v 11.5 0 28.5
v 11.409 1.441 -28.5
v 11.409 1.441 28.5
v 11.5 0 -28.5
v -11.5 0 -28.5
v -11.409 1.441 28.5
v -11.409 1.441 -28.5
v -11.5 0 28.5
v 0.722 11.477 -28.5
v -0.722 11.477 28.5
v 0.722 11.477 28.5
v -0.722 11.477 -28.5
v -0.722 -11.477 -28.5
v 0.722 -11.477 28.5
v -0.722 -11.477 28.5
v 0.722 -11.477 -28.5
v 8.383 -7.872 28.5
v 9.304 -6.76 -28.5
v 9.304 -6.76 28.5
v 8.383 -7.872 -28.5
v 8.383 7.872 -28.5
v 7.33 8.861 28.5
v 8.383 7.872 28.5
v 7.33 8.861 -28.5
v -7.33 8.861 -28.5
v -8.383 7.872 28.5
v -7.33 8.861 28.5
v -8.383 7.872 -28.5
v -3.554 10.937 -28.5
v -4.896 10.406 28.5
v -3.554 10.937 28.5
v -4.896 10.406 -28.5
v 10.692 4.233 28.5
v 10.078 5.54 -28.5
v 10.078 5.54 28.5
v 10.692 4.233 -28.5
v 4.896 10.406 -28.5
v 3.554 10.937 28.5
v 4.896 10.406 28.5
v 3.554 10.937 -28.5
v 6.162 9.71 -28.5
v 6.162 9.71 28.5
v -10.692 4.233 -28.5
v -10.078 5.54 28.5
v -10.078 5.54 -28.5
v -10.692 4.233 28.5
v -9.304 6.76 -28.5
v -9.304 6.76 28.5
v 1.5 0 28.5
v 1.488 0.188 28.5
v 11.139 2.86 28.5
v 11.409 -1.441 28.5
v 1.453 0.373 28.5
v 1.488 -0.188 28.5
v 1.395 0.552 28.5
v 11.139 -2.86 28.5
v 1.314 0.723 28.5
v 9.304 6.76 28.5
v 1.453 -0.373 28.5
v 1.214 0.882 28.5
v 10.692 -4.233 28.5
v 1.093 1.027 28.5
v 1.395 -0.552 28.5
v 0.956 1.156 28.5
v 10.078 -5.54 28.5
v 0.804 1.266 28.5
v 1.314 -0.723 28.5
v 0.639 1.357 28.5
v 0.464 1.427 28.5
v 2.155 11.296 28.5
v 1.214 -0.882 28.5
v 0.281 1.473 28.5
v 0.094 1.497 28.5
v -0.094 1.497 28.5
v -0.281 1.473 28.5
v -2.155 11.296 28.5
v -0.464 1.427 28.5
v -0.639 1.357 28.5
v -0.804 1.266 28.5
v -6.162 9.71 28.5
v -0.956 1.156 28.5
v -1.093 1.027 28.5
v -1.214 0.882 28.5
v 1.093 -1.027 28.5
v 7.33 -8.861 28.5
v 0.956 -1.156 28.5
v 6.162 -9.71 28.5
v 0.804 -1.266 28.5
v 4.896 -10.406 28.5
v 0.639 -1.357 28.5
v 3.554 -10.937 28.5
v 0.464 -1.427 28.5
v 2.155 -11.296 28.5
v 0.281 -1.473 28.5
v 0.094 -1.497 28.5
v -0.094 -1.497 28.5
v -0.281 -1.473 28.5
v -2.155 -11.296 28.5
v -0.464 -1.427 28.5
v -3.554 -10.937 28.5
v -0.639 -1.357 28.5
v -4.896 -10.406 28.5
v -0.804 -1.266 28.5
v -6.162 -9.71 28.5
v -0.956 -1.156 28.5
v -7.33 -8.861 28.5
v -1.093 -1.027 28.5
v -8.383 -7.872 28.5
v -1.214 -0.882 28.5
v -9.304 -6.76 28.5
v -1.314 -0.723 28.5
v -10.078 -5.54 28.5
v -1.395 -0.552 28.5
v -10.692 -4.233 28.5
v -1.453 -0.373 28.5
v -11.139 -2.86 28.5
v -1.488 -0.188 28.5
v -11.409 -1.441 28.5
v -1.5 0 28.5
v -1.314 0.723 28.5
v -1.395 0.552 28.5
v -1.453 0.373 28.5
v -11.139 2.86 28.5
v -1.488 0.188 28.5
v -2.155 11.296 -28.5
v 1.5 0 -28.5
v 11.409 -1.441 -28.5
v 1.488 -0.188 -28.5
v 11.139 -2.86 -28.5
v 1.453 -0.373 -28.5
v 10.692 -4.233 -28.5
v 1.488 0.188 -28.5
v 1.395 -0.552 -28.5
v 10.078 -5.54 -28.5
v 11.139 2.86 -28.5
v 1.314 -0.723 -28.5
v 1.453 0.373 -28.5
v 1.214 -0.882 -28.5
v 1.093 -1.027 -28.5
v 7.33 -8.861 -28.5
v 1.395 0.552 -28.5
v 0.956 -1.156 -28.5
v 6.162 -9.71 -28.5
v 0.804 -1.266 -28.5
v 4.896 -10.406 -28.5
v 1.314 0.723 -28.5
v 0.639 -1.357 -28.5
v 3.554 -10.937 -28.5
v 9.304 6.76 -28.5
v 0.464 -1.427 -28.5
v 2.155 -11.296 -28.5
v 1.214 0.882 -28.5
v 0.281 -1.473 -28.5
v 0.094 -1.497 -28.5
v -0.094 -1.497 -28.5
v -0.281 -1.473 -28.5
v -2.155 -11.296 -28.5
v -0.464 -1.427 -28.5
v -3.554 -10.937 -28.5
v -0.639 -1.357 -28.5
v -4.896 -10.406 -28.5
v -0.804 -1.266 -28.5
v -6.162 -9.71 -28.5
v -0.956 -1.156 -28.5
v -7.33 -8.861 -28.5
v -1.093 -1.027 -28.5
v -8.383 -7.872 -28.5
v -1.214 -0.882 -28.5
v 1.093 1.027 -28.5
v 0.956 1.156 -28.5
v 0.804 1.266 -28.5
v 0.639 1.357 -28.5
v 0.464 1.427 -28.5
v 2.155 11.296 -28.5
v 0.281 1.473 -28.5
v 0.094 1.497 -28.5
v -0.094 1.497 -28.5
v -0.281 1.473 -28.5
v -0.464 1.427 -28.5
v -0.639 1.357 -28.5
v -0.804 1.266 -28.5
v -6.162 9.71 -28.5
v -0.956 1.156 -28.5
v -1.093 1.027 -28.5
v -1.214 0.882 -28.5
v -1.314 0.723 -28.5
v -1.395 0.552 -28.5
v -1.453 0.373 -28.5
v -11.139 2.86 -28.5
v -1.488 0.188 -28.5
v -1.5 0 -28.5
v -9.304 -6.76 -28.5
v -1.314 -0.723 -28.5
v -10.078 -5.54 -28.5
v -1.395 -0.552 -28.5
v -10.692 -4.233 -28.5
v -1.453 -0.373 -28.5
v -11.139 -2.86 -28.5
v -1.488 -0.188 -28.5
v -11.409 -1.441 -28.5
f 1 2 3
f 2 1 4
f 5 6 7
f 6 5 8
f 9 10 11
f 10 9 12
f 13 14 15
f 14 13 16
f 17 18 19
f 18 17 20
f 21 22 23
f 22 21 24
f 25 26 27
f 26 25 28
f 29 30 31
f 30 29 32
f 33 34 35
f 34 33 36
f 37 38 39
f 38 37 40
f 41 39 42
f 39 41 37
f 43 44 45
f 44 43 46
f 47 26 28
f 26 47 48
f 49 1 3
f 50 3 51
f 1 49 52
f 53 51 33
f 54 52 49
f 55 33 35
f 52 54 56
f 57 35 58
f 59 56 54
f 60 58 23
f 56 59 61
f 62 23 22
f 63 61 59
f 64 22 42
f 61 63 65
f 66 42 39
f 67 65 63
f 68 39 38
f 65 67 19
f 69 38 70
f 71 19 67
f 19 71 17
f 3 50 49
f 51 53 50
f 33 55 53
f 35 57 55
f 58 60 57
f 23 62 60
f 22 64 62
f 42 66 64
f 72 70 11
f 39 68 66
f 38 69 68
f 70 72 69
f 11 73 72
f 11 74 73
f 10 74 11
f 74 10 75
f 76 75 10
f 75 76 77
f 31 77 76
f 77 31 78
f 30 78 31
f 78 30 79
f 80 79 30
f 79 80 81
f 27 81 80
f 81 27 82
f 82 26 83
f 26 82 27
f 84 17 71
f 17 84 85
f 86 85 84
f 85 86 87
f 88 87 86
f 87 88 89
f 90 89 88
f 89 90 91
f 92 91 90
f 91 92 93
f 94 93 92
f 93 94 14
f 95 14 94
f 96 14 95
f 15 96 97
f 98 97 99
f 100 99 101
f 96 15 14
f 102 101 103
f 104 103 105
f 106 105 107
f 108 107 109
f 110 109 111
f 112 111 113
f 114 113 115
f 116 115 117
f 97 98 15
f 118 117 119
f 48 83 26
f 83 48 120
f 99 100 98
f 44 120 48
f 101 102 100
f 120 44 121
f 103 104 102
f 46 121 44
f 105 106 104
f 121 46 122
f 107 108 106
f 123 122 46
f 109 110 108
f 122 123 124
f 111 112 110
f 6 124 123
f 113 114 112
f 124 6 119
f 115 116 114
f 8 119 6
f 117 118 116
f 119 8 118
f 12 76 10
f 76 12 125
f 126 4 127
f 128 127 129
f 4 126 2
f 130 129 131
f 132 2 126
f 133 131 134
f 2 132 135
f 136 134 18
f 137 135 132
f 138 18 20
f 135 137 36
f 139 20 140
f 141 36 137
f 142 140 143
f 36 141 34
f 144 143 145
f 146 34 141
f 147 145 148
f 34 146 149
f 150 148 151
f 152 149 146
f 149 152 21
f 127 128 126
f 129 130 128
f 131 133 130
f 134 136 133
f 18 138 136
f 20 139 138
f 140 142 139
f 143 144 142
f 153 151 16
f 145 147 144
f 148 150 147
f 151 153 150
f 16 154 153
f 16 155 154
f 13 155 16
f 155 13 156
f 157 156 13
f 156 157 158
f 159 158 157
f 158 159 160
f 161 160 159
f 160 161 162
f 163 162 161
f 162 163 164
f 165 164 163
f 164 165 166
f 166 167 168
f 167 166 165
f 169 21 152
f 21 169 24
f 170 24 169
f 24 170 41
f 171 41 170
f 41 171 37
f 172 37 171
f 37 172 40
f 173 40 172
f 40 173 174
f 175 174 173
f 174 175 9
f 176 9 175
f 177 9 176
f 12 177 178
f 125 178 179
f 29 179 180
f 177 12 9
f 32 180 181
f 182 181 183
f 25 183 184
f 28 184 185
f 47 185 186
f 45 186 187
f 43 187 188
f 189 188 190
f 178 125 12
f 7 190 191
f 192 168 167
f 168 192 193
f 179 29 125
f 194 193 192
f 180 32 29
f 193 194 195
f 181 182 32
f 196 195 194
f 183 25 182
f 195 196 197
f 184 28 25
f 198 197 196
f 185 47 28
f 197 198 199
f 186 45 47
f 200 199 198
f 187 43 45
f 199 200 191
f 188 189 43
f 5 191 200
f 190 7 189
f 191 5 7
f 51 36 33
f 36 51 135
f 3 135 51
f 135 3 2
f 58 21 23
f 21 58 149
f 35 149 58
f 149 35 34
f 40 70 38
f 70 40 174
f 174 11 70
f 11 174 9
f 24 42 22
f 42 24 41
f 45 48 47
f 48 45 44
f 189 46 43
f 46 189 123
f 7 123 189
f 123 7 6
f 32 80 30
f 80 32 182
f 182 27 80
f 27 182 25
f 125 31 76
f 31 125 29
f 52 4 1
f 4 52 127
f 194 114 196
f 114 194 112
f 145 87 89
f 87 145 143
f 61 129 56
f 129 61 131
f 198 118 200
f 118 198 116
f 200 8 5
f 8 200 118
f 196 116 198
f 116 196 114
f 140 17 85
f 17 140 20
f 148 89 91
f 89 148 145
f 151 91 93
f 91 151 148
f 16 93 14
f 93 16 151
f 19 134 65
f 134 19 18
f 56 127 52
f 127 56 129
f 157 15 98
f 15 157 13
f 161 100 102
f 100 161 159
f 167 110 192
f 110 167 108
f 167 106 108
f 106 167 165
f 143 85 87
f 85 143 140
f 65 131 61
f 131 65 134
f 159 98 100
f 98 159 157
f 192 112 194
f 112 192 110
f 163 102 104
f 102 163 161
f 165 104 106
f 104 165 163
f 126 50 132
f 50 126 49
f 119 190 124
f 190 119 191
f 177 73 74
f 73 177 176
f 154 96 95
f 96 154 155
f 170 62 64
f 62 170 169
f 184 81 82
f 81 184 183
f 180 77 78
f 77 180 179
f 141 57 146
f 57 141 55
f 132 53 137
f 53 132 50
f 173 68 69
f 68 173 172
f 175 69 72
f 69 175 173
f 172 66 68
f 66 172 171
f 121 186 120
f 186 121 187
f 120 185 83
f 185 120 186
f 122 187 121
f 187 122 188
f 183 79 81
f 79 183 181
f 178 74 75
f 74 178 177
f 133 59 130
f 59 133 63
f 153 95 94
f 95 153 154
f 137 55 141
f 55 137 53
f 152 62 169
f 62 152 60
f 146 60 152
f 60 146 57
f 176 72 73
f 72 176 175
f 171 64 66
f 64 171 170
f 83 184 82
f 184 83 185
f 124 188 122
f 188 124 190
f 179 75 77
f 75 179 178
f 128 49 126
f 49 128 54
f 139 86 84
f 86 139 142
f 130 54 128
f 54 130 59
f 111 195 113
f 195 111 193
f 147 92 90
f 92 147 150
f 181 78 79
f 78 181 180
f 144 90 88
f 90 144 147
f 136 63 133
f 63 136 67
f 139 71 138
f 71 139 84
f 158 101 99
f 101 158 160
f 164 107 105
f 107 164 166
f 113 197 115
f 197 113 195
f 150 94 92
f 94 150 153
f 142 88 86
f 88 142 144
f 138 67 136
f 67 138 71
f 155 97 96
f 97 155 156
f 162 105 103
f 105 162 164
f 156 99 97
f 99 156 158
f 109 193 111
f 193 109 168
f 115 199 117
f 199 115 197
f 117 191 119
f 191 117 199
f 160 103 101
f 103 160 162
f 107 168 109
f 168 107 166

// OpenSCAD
$fn = 50;


difference() {
	union() {
		translate(v = [0, 0, -28.5000000000]) {
			cylinder(h = 57, r = 11.5000000000);
		}
	}
	union() {
		translate(v = [0, 0, -100.0000000000]) {
			cylinder(h = 200, r = 1.5000000000);
		}
	}
}
